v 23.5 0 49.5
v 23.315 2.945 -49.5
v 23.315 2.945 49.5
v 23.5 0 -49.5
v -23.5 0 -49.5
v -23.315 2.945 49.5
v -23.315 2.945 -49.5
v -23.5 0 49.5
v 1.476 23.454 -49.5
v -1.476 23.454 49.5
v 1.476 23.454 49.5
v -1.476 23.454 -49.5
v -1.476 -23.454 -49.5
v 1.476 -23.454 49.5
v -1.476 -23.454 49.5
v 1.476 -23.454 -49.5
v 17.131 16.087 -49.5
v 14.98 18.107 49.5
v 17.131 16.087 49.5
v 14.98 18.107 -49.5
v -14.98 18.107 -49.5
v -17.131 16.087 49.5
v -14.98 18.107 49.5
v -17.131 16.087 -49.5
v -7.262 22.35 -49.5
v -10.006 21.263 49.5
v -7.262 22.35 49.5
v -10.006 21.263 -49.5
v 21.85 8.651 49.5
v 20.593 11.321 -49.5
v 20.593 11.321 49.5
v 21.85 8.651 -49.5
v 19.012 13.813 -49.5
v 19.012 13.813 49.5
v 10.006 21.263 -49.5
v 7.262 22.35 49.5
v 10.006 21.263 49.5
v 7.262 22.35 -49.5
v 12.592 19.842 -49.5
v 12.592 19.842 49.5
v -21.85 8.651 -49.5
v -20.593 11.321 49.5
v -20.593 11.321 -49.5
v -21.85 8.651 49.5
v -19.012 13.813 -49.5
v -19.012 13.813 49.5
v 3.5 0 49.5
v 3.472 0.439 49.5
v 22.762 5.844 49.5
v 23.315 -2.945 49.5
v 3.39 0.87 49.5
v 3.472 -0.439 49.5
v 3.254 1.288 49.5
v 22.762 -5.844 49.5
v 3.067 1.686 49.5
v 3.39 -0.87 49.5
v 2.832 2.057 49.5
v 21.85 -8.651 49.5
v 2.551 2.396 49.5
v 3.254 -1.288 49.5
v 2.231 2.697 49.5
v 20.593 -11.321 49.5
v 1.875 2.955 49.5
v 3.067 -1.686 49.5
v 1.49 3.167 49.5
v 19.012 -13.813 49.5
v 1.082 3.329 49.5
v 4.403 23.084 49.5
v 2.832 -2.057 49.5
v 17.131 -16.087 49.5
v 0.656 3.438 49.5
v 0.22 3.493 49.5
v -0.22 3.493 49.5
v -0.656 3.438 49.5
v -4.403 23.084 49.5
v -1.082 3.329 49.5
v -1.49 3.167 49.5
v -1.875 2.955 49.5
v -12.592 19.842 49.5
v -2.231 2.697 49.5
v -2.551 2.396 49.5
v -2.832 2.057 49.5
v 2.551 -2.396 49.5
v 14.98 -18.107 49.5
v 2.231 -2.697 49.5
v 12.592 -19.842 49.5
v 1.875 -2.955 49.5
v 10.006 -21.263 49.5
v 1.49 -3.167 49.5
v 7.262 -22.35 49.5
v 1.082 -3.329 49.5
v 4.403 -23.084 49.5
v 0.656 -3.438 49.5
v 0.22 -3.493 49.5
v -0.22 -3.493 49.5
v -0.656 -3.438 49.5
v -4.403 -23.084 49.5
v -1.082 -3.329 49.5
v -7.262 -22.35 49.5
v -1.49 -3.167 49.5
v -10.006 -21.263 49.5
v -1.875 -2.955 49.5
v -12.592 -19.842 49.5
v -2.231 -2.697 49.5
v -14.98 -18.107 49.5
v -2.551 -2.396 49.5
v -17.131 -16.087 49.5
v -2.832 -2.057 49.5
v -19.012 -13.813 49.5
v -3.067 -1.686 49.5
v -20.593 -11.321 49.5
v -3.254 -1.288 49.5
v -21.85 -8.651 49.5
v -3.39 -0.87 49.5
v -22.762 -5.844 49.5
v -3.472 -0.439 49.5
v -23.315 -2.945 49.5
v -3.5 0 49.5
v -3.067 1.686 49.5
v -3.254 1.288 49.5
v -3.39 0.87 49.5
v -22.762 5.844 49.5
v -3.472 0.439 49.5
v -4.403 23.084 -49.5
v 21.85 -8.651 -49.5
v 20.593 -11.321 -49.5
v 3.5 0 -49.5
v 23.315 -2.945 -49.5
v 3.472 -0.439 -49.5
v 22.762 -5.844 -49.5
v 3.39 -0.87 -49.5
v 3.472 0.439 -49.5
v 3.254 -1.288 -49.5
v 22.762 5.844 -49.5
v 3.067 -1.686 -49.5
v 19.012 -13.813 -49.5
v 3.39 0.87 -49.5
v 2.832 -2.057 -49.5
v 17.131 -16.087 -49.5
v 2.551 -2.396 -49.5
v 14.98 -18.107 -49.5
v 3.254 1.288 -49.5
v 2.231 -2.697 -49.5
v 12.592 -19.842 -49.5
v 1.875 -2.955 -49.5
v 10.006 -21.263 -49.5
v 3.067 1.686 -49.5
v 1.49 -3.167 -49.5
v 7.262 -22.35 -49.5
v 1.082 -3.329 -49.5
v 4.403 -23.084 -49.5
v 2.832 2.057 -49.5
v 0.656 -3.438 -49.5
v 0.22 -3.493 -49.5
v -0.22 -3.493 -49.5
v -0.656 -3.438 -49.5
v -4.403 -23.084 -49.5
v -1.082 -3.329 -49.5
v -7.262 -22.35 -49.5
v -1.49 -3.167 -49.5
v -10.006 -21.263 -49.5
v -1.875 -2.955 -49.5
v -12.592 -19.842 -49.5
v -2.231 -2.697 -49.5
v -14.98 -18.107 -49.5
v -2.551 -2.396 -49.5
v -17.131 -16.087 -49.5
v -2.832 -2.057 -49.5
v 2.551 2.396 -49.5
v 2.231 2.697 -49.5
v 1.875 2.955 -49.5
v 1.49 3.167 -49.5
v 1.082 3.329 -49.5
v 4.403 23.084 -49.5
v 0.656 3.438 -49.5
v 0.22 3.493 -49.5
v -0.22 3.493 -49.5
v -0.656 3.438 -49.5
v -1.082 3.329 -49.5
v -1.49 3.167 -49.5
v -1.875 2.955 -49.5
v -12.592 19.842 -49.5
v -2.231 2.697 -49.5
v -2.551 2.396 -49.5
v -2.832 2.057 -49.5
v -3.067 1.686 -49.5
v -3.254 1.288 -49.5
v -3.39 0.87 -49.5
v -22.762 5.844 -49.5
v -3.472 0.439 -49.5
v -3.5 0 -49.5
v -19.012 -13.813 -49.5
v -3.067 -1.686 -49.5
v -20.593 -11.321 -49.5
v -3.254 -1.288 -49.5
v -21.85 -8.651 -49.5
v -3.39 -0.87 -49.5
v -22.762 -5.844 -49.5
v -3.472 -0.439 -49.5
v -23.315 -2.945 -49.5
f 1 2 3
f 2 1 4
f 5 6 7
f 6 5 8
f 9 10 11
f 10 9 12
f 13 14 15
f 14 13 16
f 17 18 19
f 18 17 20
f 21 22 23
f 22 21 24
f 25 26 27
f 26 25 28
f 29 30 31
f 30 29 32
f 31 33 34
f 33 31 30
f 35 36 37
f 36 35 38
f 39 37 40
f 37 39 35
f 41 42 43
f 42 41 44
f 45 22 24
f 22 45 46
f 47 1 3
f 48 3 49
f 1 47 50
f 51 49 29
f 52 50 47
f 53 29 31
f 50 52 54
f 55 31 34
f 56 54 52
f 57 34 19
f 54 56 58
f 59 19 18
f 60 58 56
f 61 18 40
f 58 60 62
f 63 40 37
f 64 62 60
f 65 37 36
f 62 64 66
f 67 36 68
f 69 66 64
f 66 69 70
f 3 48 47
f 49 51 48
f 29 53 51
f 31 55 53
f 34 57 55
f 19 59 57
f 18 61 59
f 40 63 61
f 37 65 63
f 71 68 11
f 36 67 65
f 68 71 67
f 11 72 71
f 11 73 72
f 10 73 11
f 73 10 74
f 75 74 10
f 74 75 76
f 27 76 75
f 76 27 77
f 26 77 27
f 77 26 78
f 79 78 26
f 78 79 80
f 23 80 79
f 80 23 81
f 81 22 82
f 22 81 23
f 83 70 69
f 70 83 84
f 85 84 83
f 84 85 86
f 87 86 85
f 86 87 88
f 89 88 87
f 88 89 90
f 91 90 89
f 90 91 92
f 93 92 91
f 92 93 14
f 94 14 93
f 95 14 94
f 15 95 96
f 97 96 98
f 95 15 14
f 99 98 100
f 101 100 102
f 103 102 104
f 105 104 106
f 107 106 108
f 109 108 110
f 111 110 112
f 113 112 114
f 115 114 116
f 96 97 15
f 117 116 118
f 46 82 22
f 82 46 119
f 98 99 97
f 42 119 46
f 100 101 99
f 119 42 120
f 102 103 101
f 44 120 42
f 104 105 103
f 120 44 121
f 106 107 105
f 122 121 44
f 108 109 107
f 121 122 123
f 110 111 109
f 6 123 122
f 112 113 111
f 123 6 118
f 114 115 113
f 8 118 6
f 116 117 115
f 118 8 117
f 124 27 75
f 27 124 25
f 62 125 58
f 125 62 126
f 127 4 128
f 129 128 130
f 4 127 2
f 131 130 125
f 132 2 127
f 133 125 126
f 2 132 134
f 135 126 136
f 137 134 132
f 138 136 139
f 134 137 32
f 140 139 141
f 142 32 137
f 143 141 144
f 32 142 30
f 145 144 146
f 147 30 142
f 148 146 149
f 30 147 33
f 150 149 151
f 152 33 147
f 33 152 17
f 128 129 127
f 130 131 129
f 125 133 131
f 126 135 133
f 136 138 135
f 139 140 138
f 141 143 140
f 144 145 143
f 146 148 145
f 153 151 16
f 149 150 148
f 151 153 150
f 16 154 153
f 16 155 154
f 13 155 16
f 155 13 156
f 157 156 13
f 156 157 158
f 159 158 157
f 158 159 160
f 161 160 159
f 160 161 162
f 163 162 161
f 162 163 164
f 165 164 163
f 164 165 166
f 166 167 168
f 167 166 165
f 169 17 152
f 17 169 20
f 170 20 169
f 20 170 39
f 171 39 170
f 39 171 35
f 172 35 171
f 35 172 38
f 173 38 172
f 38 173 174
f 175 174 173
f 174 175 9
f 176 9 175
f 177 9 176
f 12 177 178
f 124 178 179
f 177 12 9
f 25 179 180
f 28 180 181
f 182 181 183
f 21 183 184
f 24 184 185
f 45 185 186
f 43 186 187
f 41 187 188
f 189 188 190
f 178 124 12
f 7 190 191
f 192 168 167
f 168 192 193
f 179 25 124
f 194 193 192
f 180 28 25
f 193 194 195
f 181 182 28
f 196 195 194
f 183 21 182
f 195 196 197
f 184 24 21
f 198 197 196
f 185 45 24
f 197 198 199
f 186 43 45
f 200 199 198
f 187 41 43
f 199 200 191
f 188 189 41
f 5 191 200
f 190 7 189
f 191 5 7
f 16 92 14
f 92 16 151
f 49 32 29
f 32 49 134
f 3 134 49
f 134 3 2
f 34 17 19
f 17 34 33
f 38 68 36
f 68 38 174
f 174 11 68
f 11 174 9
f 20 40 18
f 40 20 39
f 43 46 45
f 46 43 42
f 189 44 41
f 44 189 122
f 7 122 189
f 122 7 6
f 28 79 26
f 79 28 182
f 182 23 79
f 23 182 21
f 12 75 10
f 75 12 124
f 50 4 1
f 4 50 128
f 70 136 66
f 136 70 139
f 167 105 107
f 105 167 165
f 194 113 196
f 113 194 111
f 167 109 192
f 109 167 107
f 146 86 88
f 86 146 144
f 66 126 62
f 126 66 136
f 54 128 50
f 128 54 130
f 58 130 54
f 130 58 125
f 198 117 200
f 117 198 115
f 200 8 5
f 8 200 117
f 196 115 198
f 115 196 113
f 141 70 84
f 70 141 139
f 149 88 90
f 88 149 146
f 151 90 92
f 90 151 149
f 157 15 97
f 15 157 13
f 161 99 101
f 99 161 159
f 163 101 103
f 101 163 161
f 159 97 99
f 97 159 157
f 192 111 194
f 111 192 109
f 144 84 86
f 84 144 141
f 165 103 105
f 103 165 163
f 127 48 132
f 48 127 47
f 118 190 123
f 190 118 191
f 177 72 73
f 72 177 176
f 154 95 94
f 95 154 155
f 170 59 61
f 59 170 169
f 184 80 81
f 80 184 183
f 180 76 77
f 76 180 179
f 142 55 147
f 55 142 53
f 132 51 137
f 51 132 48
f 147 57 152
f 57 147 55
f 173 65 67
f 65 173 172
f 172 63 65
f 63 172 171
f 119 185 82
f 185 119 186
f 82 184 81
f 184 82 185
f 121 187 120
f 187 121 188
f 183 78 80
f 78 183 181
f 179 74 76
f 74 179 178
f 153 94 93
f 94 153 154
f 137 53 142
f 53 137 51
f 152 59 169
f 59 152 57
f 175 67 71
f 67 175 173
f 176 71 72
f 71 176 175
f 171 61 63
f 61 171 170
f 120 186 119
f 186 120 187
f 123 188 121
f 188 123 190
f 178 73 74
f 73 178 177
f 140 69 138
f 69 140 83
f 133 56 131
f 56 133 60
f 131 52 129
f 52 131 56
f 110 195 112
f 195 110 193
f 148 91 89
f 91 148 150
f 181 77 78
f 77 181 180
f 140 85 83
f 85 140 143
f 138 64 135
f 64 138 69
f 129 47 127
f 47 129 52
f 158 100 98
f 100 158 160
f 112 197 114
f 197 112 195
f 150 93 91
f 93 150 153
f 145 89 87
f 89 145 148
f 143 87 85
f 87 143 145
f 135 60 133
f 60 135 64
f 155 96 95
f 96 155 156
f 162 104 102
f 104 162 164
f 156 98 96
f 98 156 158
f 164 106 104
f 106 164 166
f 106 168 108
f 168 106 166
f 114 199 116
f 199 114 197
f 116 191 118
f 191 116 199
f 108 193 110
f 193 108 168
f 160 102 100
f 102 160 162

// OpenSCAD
$fn = 50;


difference() {
	union() {
		translate(v = [0, 0, -49.5000000000]) {
			cylinder(h = 99, r = 23.5000000000);
		}
	}
	union() {
		translate(v = [0, 0, -100.0000000000]) {
			cylinder(h = 200, r = 3.5000000000);
		}
	}
}
